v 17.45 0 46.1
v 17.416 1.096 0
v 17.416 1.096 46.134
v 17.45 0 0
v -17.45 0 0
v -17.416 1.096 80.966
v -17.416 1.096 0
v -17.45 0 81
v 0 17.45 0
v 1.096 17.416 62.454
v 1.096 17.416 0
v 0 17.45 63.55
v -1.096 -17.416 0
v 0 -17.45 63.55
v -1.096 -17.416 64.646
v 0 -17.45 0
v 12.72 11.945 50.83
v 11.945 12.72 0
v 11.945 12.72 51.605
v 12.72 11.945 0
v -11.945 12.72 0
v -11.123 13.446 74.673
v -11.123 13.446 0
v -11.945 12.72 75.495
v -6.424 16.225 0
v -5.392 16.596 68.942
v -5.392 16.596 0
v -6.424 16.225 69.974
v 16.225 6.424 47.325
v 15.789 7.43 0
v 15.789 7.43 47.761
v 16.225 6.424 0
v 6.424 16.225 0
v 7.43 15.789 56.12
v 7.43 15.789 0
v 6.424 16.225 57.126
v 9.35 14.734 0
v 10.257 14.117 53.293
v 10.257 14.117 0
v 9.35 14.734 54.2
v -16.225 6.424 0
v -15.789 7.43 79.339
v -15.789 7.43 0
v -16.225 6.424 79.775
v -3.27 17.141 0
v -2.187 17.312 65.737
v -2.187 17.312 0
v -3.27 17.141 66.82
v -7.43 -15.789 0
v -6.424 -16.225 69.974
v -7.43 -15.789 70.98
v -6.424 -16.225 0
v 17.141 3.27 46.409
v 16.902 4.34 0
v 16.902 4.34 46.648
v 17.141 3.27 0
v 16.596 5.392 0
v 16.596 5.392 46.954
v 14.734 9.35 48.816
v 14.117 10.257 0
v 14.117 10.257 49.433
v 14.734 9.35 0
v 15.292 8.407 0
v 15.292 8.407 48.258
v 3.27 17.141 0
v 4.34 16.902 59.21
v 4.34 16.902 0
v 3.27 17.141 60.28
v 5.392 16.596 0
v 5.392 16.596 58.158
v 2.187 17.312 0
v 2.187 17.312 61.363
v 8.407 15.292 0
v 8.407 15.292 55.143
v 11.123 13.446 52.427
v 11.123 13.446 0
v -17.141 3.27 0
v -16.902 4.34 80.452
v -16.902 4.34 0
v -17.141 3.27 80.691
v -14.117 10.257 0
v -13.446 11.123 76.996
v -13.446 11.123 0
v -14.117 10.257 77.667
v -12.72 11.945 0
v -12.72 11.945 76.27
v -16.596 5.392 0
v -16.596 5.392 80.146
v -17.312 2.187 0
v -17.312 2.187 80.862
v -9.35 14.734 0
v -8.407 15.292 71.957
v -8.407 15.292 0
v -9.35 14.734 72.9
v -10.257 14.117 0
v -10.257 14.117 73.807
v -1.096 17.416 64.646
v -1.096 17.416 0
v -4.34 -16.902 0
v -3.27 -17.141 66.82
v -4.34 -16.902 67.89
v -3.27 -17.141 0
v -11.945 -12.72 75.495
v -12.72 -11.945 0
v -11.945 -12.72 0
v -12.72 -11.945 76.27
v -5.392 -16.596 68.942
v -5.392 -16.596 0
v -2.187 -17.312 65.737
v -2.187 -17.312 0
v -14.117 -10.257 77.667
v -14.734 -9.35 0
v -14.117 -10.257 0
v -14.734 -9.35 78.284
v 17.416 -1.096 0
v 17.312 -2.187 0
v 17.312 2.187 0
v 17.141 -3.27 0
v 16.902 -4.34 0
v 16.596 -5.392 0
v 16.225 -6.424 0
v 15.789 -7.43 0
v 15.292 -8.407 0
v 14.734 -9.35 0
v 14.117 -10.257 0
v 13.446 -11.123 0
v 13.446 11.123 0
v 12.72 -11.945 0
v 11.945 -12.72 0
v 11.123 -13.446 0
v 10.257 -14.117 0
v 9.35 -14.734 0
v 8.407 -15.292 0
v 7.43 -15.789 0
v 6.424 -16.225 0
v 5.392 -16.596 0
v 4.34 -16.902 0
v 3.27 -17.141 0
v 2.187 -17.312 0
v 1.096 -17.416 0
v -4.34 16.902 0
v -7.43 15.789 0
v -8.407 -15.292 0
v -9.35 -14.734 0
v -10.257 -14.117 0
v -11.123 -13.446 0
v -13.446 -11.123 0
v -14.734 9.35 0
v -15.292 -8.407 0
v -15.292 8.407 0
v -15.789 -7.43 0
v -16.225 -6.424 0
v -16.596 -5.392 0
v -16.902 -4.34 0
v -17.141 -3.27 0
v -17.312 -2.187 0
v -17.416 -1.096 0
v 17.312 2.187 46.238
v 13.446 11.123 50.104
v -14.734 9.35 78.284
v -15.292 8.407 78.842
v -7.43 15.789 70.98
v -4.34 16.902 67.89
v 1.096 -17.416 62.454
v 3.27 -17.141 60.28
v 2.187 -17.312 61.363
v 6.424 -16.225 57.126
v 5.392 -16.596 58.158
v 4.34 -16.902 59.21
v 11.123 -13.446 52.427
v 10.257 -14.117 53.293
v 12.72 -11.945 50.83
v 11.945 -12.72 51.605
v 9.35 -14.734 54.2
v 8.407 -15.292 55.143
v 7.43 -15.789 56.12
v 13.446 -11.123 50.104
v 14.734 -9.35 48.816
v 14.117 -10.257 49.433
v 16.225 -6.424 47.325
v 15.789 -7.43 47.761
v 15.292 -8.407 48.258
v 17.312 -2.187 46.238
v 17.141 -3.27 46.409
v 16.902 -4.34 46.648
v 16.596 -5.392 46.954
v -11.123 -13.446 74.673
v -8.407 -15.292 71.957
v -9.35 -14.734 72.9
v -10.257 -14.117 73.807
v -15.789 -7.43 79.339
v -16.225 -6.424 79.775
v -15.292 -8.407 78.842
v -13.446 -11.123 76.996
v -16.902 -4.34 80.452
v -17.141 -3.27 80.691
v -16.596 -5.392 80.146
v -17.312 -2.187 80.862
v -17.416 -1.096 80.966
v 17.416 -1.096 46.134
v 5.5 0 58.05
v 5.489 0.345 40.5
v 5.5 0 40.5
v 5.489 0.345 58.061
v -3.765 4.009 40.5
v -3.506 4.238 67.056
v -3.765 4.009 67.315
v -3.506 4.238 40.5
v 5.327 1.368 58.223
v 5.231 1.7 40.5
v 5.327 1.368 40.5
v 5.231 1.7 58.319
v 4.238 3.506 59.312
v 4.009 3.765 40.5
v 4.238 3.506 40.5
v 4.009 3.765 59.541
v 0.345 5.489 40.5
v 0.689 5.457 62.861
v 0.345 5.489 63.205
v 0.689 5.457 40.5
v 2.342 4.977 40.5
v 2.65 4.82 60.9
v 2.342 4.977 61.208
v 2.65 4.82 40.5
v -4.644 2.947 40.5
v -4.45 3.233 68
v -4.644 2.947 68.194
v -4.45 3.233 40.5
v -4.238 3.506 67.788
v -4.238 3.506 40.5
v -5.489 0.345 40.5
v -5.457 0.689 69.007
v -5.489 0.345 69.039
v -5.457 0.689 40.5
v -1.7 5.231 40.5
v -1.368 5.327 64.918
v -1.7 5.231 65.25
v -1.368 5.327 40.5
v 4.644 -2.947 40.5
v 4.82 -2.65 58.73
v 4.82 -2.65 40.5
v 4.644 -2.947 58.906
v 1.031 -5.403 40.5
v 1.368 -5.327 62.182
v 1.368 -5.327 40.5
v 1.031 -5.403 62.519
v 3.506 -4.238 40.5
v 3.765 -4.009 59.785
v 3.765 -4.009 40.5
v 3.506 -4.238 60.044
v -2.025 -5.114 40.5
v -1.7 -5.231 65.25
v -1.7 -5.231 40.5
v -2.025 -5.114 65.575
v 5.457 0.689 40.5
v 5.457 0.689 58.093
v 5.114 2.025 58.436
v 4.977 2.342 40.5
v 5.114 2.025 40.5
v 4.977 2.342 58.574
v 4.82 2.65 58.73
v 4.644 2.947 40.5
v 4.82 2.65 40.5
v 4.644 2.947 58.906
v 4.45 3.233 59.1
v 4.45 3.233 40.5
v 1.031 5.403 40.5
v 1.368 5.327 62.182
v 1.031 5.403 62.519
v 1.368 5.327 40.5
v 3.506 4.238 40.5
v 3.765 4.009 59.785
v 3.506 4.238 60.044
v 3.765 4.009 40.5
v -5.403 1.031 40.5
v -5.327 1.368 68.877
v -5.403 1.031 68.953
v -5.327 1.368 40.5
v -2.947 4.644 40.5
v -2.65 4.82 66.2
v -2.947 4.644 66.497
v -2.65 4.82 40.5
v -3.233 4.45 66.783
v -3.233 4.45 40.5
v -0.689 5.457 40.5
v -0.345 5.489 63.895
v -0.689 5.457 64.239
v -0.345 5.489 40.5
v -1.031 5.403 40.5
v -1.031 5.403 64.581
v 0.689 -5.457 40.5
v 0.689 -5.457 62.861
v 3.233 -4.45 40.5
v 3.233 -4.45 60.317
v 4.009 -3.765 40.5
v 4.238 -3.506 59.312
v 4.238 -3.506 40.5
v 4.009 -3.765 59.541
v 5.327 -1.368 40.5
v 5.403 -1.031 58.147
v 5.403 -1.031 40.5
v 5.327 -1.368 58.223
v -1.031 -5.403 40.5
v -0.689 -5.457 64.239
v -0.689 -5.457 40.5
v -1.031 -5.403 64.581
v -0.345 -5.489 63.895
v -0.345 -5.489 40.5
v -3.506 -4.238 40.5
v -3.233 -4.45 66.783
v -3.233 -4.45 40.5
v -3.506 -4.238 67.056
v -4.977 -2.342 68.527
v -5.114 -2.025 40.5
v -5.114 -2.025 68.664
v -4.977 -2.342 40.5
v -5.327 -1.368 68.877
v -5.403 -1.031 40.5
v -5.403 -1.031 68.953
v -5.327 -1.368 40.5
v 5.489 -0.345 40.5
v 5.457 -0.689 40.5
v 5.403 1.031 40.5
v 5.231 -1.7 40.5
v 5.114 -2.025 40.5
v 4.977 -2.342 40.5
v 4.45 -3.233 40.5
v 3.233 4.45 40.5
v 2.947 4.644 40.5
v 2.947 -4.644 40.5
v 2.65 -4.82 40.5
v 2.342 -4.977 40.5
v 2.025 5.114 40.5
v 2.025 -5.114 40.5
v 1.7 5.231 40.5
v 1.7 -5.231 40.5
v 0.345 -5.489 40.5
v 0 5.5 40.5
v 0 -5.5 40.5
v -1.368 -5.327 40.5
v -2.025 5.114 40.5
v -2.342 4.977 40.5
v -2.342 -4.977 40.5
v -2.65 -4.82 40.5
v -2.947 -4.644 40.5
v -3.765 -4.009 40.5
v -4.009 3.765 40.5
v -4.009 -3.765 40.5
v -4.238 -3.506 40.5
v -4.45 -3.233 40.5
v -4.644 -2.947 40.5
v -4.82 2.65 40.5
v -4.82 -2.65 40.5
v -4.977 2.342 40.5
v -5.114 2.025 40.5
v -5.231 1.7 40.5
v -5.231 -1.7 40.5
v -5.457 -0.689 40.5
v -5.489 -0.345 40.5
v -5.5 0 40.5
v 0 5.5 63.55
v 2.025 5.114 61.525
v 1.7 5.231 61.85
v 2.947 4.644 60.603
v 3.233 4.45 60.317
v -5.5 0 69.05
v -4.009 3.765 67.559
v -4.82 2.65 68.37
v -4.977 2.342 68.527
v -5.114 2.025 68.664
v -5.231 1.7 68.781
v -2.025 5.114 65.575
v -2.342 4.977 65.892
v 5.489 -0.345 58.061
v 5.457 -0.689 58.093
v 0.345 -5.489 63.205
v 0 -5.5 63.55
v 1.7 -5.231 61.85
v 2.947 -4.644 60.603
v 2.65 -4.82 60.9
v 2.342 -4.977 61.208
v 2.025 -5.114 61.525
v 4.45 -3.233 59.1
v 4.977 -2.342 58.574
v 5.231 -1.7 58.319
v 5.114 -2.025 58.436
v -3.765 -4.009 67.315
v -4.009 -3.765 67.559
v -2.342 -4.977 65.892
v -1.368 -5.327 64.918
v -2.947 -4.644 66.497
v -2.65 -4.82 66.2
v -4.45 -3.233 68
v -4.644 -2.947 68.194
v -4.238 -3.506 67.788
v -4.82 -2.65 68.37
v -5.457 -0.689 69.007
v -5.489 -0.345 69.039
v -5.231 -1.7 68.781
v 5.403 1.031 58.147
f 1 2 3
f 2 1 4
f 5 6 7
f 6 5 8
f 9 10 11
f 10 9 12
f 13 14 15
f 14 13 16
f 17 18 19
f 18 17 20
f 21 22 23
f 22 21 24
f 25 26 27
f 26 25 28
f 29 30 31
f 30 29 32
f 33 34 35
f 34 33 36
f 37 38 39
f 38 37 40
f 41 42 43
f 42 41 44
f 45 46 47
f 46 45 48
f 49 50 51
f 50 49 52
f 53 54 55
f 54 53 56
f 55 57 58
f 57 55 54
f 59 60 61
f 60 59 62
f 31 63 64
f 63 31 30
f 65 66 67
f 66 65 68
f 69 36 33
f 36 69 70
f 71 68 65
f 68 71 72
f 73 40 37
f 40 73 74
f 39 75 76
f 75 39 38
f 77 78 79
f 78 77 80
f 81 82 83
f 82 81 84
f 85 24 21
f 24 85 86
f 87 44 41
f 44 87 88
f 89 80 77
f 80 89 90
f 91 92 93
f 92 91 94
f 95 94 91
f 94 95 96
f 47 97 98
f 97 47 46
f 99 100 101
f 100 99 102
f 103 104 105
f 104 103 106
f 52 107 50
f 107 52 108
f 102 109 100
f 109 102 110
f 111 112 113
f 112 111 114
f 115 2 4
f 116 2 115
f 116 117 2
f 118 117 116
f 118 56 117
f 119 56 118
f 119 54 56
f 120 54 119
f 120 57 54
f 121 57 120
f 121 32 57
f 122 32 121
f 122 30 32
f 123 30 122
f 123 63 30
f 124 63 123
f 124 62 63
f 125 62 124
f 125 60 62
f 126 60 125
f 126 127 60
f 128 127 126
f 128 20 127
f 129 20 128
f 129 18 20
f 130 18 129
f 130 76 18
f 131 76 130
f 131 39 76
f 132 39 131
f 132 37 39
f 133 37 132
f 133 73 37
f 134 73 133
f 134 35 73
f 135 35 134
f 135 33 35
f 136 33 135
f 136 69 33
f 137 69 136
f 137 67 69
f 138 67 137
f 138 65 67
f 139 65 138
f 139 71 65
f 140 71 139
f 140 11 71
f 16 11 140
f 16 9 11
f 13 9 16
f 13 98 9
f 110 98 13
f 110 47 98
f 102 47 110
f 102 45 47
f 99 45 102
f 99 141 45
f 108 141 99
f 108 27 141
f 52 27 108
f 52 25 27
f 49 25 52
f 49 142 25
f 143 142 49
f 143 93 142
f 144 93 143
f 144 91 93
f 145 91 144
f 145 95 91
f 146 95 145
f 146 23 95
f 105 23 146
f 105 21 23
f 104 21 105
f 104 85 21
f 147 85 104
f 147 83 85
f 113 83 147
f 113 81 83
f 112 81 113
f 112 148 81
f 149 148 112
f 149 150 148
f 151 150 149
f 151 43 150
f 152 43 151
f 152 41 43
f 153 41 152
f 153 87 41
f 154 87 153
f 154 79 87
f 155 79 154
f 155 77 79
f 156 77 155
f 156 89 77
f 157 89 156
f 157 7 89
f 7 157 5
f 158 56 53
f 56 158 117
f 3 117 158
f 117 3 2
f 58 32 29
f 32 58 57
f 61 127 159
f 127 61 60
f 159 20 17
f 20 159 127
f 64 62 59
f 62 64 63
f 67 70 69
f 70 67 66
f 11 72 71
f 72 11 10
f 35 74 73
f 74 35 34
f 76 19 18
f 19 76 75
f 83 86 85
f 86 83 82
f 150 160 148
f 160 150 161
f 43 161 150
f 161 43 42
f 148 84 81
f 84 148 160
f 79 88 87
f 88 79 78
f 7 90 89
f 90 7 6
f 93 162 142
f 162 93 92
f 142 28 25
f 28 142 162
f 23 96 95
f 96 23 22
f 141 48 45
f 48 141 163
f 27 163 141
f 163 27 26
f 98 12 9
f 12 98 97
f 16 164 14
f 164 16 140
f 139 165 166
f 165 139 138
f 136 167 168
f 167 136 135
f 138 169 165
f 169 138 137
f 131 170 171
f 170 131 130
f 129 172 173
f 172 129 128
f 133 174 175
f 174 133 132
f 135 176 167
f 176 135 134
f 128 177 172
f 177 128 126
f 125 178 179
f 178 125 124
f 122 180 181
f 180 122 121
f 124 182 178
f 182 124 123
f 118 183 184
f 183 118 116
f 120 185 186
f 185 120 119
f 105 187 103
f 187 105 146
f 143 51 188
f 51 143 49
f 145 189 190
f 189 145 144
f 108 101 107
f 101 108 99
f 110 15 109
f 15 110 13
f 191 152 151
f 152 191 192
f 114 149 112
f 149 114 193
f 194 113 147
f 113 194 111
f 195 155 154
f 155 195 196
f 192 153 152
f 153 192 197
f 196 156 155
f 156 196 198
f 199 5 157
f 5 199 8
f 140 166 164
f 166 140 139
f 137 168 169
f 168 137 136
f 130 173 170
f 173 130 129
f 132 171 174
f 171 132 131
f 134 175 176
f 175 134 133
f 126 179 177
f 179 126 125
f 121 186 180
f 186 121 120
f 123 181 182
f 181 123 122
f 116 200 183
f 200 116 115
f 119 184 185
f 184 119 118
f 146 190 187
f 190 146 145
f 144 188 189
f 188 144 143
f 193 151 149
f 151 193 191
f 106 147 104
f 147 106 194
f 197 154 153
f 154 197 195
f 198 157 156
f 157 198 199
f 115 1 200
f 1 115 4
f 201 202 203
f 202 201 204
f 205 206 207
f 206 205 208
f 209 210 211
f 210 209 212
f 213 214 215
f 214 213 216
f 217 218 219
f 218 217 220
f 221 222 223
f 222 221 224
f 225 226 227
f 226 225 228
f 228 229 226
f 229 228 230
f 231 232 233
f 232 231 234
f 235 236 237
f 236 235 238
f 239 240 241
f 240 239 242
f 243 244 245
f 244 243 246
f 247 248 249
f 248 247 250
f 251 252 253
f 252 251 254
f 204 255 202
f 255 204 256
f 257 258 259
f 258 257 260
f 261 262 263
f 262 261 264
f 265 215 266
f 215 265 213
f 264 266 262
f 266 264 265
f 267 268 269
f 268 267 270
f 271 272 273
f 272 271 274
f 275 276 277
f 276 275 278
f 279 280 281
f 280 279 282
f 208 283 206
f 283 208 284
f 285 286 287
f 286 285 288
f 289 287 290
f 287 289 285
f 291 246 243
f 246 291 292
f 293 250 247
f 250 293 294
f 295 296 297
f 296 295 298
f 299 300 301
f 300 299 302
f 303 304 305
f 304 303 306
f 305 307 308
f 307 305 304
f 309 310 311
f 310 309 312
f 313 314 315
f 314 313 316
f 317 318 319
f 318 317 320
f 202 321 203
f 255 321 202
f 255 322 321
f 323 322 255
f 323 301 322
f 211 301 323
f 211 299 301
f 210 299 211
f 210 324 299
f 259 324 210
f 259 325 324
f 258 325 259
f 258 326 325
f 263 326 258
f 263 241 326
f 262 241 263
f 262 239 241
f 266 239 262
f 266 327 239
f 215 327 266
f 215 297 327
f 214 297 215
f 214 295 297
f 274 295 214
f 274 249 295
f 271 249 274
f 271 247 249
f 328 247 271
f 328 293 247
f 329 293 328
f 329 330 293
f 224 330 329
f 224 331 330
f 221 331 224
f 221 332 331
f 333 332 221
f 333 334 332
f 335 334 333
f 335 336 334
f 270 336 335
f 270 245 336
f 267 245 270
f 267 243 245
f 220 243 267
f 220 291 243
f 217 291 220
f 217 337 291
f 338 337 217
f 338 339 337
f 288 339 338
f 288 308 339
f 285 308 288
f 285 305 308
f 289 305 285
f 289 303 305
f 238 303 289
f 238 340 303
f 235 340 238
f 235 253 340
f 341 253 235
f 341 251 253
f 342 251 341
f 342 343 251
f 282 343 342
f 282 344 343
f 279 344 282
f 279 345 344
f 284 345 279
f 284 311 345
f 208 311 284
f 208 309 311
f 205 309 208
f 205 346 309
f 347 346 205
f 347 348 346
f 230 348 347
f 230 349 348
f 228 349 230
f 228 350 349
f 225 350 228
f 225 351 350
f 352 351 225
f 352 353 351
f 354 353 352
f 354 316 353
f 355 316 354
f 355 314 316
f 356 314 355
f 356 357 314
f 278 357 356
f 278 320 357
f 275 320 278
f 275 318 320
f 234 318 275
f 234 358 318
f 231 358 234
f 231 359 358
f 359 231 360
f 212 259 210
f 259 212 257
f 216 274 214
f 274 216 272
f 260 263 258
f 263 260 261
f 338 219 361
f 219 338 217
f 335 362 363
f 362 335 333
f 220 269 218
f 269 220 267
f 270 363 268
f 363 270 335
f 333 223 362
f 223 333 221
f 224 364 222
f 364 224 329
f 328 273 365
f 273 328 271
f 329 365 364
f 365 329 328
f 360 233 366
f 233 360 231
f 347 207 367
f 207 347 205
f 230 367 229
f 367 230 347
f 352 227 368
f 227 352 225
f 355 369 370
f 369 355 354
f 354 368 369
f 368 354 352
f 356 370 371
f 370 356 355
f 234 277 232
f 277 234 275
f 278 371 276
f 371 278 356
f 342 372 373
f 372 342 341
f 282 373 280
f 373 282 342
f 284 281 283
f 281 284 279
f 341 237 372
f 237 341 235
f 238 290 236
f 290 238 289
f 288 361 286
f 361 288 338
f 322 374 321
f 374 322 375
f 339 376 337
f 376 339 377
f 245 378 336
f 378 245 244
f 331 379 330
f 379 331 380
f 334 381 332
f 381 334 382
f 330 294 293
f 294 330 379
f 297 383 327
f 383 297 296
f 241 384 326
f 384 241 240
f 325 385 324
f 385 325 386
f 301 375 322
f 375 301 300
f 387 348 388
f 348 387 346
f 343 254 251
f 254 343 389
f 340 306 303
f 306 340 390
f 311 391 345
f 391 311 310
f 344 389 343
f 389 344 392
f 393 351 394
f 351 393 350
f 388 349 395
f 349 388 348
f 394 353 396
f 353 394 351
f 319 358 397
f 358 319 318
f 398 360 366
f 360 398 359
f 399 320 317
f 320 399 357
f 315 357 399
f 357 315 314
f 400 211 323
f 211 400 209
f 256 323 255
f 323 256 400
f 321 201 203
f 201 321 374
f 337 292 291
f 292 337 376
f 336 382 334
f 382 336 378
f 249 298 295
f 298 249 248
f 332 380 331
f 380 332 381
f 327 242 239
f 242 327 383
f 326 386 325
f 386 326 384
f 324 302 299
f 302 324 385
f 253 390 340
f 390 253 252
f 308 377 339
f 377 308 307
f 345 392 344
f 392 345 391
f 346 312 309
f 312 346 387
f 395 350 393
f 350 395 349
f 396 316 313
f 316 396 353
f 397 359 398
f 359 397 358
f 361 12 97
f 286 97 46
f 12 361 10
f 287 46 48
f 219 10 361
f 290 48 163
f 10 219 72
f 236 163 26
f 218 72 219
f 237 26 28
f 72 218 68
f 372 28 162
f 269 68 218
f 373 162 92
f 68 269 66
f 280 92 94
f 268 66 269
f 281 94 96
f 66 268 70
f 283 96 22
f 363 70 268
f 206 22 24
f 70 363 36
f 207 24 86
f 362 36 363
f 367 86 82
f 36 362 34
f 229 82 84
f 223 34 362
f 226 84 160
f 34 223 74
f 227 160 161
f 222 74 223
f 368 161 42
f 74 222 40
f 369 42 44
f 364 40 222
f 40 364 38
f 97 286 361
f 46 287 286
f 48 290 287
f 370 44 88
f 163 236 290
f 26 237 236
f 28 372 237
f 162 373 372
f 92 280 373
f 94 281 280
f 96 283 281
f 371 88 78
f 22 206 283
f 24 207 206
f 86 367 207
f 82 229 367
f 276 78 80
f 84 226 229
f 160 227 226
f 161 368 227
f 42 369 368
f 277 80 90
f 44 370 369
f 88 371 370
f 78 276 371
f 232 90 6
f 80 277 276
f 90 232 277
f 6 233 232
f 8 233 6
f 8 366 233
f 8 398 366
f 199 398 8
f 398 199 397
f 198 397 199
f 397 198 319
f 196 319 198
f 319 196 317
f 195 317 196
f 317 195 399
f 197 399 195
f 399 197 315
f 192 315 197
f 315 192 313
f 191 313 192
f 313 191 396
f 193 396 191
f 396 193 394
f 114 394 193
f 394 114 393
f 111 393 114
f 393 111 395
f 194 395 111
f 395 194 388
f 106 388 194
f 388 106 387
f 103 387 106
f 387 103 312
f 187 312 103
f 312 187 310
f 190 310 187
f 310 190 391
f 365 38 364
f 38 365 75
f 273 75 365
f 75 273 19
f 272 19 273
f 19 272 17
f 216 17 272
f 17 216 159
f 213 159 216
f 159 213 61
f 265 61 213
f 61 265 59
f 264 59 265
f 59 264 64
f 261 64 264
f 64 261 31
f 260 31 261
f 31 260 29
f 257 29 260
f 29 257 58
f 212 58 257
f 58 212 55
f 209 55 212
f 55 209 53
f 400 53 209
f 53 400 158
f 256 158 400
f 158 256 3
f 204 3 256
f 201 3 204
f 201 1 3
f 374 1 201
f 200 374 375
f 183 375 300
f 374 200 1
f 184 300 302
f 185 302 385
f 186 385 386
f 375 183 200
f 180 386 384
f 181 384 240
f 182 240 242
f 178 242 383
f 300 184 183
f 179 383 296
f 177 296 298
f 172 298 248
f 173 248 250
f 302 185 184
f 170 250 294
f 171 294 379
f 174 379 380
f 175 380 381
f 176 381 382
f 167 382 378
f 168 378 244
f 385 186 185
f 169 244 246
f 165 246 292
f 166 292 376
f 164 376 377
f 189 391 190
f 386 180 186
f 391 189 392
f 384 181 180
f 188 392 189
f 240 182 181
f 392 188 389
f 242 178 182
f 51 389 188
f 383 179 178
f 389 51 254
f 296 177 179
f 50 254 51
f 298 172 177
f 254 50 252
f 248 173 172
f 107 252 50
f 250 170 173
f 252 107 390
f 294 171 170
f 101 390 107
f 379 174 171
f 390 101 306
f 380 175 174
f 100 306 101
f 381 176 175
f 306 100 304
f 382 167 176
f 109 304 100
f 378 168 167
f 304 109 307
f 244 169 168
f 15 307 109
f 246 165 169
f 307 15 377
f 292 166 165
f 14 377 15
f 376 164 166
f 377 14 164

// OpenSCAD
$fn = 100;

// Per http://www.gbfans.com/wiki/File:Stefan%27s_Proton_Pack_Plans_Page_13.jpg
// although the innerDiameter is increased slightly to accommodate the 10 mm split loom
diameter = 34.9;
innerDiameter = 11.0;   //9.5;
height = 81.0;
cutoffAngle = 135.0;

difference() {
    // The core cylinder
    cylinder(d=diameter, h=height);
    
    // Hole
    translate([0,0,height/2])
    cylinder(d=innerDiameter, h=height);
    
    // Cutoff
    translate([-diameter/2,-height/2,height])
    rotate([0,cutoffAngle+270,0])
    cube([height,height,height/3]);
}
